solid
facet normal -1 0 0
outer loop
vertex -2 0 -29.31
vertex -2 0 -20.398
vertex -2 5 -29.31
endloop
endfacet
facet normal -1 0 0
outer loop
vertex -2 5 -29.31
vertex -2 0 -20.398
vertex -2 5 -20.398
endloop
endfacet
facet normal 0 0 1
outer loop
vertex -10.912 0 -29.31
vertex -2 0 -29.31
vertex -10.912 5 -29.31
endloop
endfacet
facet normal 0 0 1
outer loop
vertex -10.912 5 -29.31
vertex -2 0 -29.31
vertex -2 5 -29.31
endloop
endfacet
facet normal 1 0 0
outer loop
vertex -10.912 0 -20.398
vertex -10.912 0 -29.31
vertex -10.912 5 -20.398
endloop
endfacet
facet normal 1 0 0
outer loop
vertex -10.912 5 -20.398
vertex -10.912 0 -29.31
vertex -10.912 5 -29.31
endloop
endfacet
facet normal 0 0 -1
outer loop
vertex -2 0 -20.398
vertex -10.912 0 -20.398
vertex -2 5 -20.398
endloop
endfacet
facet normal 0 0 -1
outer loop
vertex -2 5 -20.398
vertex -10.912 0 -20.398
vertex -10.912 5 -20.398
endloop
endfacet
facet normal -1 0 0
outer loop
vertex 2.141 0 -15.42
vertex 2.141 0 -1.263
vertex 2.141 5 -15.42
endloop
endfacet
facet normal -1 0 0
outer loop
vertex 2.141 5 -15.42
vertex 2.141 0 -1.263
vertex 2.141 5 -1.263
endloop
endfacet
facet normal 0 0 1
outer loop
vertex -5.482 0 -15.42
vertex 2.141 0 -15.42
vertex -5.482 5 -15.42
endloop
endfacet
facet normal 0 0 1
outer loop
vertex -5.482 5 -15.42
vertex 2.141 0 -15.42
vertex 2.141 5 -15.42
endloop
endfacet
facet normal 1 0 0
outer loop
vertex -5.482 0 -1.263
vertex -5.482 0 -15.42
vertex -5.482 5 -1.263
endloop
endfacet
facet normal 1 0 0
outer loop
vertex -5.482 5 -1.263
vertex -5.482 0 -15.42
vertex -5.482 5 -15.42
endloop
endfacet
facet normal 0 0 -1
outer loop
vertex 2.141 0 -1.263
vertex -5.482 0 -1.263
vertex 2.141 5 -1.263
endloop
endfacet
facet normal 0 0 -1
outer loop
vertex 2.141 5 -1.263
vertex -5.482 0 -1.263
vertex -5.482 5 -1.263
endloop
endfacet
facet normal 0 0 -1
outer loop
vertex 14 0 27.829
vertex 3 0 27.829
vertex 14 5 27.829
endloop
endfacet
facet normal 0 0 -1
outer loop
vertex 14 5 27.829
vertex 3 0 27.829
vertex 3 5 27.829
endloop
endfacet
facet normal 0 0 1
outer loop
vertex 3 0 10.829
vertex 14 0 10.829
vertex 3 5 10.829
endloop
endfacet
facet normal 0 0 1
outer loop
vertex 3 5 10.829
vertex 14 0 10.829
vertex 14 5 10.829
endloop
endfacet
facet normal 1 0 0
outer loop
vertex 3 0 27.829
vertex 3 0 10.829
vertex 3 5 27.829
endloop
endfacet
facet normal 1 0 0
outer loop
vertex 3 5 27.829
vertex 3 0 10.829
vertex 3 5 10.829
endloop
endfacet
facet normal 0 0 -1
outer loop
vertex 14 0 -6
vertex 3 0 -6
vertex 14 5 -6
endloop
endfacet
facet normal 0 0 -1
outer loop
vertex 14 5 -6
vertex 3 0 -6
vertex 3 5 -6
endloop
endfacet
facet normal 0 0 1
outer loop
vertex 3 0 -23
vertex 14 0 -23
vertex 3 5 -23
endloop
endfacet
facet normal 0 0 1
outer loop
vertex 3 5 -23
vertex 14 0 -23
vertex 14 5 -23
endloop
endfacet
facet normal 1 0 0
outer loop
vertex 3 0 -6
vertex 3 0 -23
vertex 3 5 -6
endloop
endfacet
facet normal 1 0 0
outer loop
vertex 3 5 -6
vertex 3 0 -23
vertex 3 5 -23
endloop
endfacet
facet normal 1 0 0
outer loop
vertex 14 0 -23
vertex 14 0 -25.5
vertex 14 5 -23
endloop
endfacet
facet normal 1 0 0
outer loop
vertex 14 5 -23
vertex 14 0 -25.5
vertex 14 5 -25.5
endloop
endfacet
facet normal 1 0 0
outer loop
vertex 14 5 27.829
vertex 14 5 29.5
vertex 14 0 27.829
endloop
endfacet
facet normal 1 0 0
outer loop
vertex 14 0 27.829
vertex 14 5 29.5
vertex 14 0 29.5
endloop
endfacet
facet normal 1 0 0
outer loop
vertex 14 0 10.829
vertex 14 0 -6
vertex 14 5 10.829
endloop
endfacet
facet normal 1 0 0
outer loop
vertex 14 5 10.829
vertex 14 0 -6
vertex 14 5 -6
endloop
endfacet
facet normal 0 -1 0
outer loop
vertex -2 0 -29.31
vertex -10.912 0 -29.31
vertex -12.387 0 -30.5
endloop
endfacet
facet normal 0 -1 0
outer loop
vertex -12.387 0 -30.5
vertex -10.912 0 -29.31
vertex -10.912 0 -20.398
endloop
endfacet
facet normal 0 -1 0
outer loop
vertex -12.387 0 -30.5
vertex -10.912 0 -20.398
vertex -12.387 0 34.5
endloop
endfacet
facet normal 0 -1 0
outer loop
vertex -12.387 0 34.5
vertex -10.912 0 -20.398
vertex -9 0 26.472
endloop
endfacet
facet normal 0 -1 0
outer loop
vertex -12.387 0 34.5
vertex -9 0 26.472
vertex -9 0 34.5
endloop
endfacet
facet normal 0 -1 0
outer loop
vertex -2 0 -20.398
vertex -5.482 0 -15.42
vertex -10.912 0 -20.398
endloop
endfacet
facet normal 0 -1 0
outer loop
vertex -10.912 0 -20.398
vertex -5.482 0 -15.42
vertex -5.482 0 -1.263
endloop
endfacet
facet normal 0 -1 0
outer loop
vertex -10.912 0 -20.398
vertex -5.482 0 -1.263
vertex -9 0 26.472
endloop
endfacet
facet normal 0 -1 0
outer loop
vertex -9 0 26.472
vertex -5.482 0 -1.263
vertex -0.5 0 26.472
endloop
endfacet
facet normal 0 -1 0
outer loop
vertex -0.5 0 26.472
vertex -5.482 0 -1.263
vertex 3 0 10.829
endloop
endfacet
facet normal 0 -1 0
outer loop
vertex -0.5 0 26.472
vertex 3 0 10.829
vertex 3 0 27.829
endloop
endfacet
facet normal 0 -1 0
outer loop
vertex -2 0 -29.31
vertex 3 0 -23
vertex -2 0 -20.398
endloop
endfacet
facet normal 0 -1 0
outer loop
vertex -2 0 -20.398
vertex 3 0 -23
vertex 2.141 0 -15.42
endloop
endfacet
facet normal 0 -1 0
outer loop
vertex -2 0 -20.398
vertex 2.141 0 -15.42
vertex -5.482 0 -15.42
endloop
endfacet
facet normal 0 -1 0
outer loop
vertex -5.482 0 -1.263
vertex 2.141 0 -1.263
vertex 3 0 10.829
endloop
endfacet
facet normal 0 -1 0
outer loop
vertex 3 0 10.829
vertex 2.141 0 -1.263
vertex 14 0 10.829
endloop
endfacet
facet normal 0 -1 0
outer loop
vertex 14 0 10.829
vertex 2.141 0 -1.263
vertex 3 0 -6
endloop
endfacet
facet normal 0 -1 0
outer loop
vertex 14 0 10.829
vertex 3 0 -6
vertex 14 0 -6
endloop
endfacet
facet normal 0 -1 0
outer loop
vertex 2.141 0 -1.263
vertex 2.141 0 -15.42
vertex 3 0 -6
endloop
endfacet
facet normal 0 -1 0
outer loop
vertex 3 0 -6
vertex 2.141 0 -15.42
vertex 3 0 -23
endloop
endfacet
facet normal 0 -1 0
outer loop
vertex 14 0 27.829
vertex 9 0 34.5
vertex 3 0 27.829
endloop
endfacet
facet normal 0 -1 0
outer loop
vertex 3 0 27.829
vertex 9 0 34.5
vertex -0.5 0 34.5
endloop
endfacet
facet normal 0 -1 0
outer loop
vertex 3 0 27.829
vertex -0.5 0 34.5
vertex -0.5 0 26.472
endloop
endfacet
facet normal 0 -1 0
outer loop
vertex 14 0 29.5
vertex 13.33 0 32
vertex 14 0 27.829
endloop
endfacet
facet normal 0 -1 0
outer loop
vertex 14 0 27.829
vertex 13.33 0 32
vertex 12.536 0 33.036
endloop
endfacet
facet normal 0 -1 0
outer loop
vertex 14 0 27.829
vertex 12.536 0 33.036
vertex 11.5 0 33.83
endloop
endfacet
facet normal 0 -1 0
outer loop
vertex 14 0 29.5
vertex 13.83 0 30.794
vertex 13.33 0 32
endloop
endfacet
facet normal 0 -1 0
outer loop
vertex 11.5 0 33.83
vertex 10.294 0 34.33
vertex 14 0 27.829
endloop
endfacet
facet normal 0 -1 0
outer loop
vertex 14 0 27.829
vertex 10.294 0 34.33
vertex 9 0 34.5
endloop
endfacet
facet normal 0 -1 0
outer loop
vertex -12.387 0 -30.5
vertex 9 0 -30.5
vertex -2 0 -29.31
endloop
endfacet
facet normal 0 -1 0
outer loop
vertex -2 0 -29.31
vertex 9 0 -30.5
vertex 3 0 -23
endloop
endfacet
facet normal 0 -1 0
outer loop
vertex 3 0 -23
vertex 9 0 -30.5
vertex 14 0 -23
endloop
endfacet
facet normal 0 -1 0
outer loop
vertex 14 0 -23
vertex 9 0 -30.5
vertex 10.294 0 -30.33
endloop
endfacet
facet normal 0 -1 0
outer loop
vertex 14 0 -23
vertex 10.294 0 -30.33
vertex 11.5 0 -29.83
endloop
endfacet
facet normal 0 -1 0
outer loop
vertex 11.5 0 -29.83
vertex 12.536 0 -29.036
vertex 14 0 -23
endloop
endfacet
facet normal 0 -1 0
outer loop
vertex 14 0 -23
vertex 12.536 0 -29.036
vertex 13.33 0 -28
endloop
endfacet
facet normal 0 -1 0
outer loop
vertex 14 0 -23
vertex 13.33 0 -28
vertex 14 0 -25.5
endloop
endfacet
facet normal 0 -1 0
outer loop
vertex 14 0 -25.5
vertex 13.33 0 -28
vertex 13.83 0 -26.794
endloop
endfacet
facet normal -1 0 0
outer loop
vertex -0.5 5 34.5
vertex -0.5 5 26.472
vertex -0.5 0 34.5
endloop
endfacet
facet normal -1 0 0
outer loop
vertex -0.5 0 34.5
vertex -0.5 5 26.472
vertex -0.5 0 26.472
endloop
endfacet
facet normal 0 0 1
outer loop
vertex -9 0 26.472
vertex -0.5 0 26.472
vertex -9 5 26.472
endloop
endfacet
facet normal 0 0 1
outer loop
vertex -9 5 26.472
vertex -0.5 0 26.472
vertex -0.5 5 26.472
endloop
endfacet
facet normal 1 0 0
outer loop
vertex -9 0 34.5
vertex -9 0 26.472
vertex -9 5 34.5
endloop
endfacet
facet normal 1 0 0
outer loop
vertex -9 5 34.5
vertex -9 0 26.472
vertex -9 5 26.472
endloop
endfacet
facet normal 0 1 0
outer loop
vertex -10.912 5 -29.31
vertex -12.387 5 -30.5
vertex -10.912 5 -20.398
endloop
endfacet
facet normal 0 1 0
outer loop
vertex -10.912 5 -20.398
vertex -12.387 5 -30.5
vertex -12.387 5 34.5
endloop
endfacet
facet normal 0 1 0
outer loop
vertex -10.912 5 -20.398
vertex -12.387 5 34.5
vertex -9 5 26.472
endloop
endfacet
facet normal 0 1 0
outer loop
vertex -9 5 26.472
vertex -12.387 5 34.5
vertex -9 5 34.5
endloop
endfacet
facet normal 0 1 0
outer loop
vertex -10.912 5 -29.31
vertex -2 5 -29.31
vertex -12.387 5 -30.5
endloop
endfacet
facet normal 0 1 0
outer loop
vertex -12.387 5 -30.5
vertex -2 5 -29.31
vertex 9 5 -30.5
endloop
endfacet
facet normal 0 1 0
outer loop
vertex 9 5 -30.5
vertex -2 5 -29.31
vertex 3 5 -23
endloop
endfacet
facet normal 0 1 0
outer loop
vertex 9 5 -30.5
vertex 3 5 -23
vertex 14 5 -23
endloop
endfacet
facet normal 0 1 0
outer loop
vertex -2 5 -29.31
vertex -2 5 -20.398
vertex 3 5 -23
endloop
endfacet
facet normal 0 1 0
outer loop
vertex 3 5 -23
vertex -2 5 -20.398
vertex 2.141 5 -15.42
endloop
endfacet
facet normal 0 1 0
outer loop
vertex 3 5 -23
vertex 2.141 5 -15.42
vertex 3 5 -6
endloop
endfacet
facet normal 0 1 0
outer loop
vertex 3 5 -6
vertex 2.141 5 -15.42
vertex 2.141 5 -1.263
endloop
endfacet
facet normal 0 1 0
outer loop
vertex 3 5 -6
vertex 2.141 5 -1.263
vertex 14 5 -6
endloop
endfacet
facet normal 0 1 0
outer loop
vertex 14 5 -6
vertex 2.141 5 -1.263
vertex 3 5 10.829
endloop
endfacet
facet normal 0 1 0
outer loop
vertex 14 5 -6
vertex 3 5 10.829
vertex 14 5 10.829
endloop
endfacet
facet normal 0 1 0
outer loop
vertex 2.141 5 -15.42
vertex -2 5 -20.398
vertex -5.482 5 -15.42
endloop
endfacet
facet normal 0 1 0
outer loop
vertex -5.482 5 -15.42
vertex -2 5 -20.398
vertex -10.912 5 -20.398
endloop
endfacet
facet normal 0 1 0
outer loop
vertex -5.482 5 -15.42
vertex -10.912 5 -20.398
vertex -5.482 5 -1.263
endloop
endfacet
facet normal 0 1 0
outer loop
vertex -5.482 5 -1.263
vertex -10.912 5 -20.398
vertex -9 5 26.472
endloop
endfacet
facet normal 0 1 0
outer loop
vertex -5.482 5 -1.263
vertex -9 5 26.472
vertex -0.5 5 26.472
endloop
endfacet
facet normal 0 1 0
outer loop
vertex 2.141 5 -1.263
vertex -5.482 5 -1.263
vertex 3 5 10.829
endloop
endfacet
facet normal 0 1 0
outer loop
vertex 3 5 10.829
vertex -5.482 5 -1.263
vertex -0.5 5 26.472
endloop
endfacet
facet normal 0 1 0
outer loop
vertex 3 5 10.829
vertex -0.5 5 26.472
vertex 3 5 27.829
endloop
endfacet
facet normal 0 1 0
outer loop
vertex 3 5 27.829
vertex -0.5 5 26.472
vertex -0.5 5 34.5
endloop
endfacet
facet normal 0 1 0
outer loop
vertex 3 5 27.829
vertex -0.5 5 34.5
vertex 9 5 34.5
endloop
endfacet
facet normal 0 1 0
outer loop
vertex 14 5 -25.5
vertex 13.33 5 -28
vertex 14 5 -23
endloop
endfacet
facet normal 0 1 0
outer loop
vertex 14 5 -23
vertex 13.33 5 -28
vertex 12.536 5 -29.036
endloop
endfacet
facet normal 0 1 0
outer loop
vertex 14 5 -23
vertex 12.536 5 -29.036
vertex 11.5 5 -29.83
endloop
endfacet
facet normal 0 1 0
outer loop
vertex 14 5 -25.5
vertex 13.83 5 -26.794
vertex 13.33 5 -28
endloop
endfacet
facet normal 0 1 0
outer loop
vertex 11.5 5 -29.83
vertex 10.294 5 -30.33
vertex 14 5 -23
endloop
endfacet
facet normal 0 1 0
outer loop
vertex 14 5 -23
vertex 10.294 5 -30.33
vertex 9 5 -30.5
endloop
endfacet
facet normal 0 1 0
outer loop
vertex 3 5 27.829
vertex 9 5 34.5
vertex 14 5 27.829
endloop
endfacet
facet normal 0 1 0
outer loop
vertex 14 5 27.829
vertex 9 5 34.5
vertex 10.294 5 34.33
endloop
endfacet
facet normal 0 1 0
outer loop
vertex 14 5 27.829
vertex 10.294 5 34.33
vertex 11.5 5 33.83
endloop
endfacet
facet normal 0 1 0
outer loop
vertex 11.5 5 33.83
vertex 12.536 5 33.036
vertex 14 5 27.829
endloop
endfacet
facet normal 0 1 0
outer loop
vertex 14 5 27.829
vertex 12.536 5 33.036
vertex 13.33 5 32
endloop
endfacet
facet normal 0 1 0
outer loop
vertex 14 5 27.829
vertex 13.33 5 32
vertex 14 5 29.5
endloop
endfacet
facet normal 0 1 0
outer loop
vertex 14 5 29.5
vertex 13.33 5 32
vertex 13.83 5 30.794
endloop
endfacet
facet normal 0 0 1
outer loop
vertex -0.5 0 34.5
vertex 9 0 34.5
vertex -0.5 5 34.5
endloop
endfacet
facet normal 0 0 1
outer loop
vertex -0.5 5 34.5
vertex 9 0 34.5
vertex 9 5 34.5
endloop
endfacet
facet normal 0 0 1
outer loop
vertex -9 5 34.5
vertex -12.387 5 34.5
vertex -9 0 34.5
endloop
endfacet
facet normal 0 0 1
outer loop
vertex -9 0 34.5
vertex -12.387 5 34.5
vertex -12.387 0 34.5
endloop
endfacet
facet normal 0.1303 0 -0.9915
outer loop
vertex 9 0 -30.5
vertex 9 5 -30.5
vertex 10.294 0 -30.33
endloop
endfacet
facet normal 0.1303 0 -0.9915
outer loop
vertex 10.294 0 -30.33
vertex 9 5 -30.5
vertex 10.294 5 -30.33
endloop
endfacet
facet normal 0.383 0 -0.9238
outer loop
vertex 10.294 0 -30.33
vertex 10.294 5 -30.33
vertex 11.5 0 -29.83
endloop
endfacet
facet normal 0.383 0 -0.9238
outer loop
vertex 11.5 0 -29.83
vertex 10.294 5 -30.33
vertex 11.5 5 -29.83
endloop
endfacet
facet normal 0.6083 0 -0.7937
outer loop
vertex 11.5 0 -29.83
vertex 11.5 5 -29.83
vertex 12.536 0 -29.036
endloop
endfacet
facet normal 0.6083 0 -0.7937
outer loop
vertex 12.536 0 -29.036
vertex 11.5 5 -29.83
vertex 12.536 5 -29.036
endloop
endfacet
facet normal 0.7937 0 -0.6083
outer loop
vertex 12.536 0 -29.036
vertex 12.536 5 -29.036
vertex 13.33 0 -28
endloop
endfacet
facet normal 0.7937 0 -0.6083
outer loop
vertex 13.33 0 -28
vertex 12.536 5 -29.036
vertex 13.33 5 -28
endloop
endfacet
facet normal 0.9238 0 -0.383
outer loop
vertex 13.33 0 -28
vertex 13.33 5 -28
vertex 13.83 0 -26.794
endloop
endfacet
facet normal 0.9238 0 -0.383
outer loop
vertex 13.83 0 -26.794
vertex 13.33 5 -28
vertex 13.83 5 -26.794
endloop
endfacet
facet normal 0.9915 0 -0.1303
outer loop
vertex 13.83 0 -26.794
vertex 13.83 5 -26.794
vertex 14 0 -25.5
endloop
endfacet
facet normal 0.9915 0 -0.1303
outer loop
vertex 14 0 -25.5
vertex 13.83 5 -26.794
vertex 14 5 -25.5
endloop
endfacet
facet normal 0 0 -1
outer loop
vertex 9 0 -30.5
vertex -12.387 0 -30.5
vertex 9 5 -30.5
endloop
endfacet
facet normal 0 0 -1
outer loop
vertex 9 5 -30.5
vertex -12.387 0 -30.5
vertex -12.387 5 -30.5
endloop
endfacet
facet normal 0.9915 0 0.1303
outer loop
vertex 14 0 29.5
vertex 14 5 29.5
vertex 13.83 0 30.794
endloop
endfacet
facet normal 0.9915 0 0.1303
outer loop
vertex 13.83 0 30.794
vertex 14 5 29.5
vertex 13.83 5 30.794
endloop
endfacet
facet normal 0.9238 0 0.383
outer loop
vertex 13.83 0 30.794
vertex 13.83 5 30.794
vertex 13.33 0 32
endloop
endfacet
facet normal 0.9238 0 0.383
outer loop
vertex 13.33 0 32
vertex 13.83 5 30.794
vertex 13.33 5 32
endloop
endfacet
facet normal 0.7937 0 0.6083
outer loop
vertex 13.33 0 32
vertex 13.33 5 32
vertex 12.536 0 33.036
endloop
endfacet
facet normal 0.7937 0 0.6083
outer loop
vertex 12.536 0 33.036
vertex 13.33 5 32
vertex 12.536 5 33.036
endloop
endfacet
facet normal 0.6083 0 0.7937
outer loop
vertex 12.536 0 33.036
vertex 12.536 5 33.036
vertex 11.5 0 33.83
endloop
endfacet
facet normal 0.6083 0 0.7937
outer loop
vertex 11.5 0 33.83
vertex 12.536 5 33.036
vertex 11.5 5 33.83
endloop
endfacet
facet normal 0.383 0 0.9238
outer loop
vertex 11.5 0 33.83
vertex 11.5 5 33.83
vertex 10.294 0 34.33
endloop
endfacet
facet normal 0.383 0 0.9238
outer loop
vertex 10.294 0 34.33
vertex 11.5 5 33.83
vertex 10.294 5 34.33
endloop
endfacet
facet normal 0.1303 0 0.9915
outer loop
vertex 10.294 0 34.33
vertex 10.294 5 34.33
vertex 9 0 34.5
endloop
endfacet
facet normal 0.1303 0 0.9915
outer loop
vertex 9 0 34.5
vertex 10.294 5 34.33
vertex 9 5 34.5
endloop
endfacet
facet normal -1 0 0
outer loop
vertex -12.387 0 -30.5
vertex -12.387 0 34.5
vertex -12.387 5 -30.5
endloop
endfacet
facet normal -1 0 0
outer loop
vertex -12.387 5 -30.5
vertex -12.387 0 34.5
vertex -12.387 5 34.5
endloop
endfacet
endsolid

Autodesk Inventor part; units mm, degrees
ref_plane "YZ Plane" through (0, 0, 0) normal (1, 0, 0) x (0, 1, 0)
ref_plane "XZ Plane" through (0, 0, 0) normal (0, 1, 0) x (-1, 0, 0)
ref_plane "XY Plane" through (0, 0, 0) normal (0, 0, 1) x (1, 0, 0)
sketch "Sketch1" plane through (0, 0, 0) normal (0, 1, 0) x (-1, 0, 0)
  line L0 (-14, 34.5) -> (12.387, 34.5)
  line L1 (12.387, 34.5) -> (12.387, -30.5)
  line L2 (12.387, -30.5) -> (-14, -30.5)
  line L3 (-14, -30.5) -> (-14, 34.5)
  dimension "d0" = 26.387
  dimension "d1" = 65
extrude "Extrusion1" add sketch "Sketch1" along normal blind 5
fillet "Fillet1" radius 5 2 edges at (14, 2.5, 34.5) (14, 2.5, -30.5)
sketch "Sketch2" plane through (0, 5, 0) normal (0, 1, 0) x (1, 0, 0)
  line L0 (-9, -34.5716) -> (-9, -26.4716)
  line L1 (-9, -26.4716) -> (-0.5, -26.4716)
  line L2 (-0.5, -26.4716) -> (-0.5, -34.5716)
  line L3 (-0.5, -34.5716) -> (-9, -34.5716)
  point P0 (0, 0)
  point P1 (-12.387, -34.5)
  dimension "d6" = 8.1
  dimension "d7" = 8.5
extrude "Extrusion2" cut sketch "Sketch2" against normal through all
sketch "Sketch3" plane through (0, 5, 0) normal (0, 1, 0) x (1, 0, 0)
  line L0 (14, -27.8288) -> (3, -27.8288)
  line L1 (3, -27.8288) -> (3, -10.8288)
  line L2 (3, -10.8288) -> (14, -10.8288)
  line L3 (14, -10.8288) -> (14, -27.8288)
  line L4 (14, 6.0005) -> (3, 6.0005)
  line L5 (3, 6.0005) -> (3, 23.0005)
  line L6 (3, 23.0005) -> (14, 23.0005)
  line L7 (14, 23.0005) -> (14, 6.0005)
  point P0 (0, 0)
  dimension "d12" = 11
  dimension "d13" = 17
  dimension "d22" = 11
  dimension "d23" = 17
extrude "Extrusion3" cut sketch "Sketch3" against normal through all
sketch "Sketch4" plane through (0, 5, 0) normal (0, 1, 0) x (1, 0, 0)
  line L0 (14, 6.0005) -> (3, 6.0005) projected
  line L1 (3, 23.0005) -> (3, 6.0005) projected
  line L2 (2.1408, 15.4204) -> (-5.4822, 15.4204)
  line L3 (-5.4822, 15.4204) -> (-5.4822, 1.2634)
  line L4 (-5.4822, 1.2634) -> (2.1408, 1.2634)
  line L5 (2.1408, 1.2634) -> (2.1408, 15.4204)
  line L6 (-12.387, 30.5) -> (-12.387, -34.5) projected
  line L7 (-10.912, 29.3102) -> (-2, 29.3102)
  line L8 (-2, 29.3102) -> (-2, 20.3982)
  line L9 (-2, 20.3982) -> (-10.912, 20.3982)
  line L10 (-10.912, 20.3982) -> (-10.912, 29.3102)
  point P0 (0, 0)
  dimension "d29" = 7.623
  dimension "d30" = 14.157
  dimension "d33" = 8.912
  dimension "d34" = 8.912
extrude "Extrusion4" cut sketch "Sketch4" against normal through all
properties part number "Charger_support"
